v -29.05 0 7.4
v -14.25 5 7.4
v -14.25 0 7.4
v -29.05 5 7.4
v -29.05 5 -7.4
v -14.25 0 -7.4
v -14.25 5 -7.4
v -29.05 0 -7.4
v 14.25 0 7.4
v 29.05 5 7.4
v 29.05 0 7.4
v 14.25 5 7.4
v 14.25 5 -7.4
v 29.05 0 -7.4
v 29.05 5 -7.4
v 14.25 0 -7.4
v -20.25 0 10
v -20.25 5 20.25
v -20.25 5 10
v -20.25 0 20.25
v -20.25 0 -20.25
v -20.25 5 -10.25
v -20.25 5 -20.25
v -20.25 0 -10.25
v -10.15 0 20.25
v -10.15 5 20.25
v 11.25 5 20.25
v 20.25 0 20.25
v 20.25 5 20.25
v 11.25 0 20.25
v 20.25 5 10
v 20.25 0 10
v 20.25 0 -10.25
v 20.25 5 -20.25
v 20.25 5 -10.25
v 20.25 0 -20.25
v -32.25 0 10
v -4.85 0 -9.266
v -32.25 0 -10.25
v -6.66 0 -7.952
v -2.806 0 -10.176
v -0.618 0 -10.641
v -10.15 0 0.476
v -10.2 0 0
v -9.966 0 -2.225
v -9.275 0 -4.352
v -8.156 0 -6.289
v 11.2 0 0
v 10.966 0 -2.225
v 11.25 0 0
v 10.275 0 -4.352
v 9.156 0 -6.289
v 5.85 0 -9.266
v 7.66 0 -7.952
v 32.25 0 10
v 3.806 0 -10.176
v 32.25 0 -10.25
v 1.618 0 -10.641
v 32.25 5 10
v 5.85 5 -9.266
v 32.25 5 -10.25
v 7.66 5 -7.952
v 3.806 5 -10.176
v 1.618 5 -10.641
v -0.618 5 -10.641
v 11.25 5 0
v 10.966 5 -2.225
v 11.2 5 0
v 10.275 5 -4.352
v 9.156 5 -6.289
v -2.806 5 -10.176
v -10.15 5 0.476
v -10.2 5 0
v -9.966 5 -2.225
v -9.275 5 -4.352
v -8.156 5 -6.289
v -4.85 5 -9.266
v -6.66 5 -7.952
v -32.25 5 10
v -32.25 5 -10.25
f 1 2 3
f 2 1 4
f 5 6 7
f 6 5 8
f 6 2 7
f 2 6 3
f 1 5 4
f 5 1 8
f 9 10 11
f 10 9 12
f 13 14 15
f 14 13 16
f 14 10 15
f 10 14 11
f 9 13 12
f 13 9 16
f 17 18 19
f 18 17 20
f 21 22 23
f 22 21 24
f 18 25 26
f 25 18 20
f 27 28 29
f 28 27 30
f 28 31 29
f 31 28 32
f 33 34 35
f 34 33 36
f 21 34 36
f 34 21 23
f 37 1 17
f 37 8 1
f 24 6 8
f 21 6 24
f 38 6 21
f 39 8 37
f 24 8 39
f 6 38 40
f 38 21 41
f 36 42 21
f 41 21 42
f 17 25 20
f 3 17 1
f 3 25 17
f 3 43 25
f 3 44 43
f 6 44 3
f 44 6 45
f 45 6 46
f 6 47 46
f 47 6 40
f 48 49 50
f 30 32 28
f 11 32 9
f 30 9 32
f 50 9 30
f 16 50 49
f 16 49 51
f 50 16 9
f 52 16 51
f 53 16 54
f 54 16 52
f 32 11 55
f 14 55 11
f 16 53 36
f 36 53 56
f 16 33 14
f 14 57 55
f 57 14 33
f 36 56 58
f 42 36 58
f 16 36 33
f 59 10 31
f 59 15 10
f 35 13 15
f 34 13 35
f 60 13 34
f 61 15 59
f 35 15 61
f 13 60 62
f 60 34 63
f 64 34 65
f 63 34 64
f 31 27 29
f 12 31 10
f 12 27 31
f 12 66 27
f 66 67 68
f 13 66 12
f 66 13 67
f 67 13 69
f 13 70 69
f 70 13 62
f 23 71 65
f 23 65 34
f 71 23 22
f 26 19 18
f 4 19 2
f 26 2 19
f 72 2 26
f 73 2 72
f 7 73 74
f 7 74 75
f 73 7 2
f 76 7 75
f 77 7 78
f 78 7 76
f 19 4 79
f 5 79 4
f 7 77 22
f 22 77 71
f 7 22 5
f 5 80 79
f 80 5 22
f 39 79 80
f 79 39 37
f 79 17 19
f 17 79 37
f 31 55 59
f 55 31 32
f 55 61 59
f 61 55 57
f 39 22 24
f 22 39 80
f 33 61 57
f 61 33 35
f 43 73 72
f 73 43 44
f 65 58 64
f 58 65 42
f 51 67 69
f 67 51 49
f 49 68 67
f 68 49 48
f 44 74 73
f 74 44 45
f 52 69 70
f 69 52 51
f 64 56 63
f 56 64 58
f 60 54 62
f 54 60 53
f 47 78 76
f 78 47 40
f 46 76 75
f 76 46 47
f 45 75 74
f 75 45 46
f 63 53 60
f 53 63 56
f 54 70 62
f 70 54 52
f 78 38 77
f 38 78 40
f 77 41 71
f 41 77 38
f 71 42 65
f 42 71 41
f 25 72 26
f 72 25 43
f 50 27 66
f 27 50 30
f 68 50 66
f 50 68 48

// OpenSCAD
// file: syringePumpConstants.scad
/* === Project-universal Constants === */

//Not all of these variables are used in this specific model,
//but the same variable set is used across all models in this project.

$fs = 0.1;

inch = 25.4; //for mm conversion

//width of base

// 8020 profile is 1 inch wide
//baseSizeY = 2*inch;
//screwPlateSize = 25;	
//screwRadius = 3.5;

// OpenBeam is 15mm wide
baseSizeY = 2*15;
screwPlateSize = 15;	
screwRadius = 1.5;

centerY = baseSizeY / 2; //both axes go right down the middle of the base

//stepper motor
stepperZSize = 42;
stepperYSize = 42;

//608 bearing 
bearing608Height = 8.5;
bearing608Diameter = 22.5;

//height of holder for 80/20 screws
mountPlateHeight = 5;

//axis heights
threadedAxisHeight = stepperZSize/2 + mountPlateHeight + 4;
echo("threadedAxisHeight ", threadedAxisHeight);
smoothAxisHeight = (threadedAxisHeight-6.6) / 2;
smoothRodRadius = 4.2;

//syringe properties
//barrelDiameter = 25;
//
//barrelSlotThickness = 3;
//barrelSlotHeight = 28;

// 20ml BD plastic disposable syringe REF 302830
barrelDiameter = 21.5;
barrelSlotThickness = 3;
barrelSlotHeight = 28;

syringeCenterHeight = threadedAxisHeight + bearing608Diameter/2 + 4 + barrelDiameter/2;

//fixes render oddities
floatCorrection = 0.001; 
floatCorrection2 = 2*floatCorrection; 

barrelDiameter = 21.4;
barrelSlotThickness = 3;
plungerTravel = 85;
extrusionThickness = 14.8;
wallThickness = 3;
barrelTabsMin = 24.5;
nemaWidth=28.5;
barrelTabsMax = 38.0;
barrelTabsThickness = 2.0;
//screwRadius=3.2;
screwRadius=3.875;
extrusionTabWidth=wallThickness*1.5;
// main file
include <syringePumpConstants.scad>

threadedAxisHeight=0;

space_above_floor = 0;

wall_thickness = 5;
//	motor_width = 42; // NEMA 17
motor_width = 28.5; // NEMA 11
frame_width = motor_width + (wall_thickness + 1)*2;
bolt = 4;
//height = 25;
height= threadedAxisHeight;
//	inch = 25.4;
//	screwPlateSize = 25;	
//	screwRadius = 3.25;

inch = 15;
screwPlateSize = 25;	
screwRadius = 1.5;

//these are all the mount point holes.
x1 = -wall_thickness;
y1 = wall_thickness*2;
x2 = frame_width+wall_thickness;
y2 = wall_thickness*2;
x3 = -wall_thickness;
y3 = frame_width-wall_thickness*2;
x4 = frame_width + wall_thickness;
y4 = frame_width-wall_thickness*2;

module fake_extrusion(){
    
    translate([wall_thickness+1,-50,-(extrusionThickness/2 +wall_thickness)])  //voodoo
    {
    rotate([0,0,90]){
        cube([100,extrusionThickness,extrusionThickness]);
    }
    }
    
    //translate([nemaWidth,-50,-(extrusionThickness/2 +wall_thickness)])  //centered
    translate([wall_thickness+nemaWidth+extrusionThickness+1,-55,-(extrusionThickness/2 +wall_thickness)])
    {
    rotate([0,0,90]){
        cube([100,extrusionThickness,extrusionThickness]);
    }
    }
}

translate([0,0,wall_thickness + space_above_floor]){
nema_17_mount();
}
    module nema_17_mount()
    {
        //center the whole thing in X
        translate([-frame_width/2, 0, 0])
        {
            difference()
            {
                //build the main unit.
                //positive

                union()
                {
                    translate([0,0,-(frame_width+10)/2]){
                    //structure
                    //cube([wall_thickness, frame_width, frame_width]); //front face
                    cube([frame_width, wall_thickness, frame_width]); //left face
                        translate([-12,0,10]){
                    cube([frame_width+24, wall_thickness, frame_width/2]); //left face    
                        }
                    //translate([frame_width - wall_thickness, 0, 0])     //right face
                    //    cube([wall_thickness, frame_width, frame_width]);
                        

                }

            }


//negative
            fake_extrusion();
                //nema 11 mount
                rotate([90, 0, 0])
                {
                    translate([frame_width/2+0.5, height - 5, -wall_thickness])
                    {
//                        translate([11.5, 11.5, -10])
//                            #cylinder(r=bolt/2, h=4*wall_thickness+1);
//                        translate([-11.5, 11.5, -10])
//                            cylinder(r=bolt/2, h=4*wall_thickness+1);
//                        translate([11.5, -11.5, -10])
//                            cylinder(r=bolt/2, h=4*wall_thickness+1);
//                        translate([-11.5, -11.5, -10])
//                            cylinder(r=bolt/2, h=4*wall_thickness+1);
                        translate([0, 0, -10])  //wtf? double voodoo
                        cylinder(r=barrelDiameter/2, h=4*wall_thickness+1);

   
                    }
                    translate([(barrelDiameter/2)-0.6,-5,-10]){
                    cube([barrelDiameter,barrelDiameter,barrelDiameter]);
                }
                }

                //back slant cutaway
                translate([0, 0, frame_width+wall_thickness])
                    rotate([45, 0, 0])
                        translate([-frame_width, 0, -frame_width*2])
                            cube(size=[frame_width*4, frame_width*2, frame_width*4]);

            }
        }
    }
